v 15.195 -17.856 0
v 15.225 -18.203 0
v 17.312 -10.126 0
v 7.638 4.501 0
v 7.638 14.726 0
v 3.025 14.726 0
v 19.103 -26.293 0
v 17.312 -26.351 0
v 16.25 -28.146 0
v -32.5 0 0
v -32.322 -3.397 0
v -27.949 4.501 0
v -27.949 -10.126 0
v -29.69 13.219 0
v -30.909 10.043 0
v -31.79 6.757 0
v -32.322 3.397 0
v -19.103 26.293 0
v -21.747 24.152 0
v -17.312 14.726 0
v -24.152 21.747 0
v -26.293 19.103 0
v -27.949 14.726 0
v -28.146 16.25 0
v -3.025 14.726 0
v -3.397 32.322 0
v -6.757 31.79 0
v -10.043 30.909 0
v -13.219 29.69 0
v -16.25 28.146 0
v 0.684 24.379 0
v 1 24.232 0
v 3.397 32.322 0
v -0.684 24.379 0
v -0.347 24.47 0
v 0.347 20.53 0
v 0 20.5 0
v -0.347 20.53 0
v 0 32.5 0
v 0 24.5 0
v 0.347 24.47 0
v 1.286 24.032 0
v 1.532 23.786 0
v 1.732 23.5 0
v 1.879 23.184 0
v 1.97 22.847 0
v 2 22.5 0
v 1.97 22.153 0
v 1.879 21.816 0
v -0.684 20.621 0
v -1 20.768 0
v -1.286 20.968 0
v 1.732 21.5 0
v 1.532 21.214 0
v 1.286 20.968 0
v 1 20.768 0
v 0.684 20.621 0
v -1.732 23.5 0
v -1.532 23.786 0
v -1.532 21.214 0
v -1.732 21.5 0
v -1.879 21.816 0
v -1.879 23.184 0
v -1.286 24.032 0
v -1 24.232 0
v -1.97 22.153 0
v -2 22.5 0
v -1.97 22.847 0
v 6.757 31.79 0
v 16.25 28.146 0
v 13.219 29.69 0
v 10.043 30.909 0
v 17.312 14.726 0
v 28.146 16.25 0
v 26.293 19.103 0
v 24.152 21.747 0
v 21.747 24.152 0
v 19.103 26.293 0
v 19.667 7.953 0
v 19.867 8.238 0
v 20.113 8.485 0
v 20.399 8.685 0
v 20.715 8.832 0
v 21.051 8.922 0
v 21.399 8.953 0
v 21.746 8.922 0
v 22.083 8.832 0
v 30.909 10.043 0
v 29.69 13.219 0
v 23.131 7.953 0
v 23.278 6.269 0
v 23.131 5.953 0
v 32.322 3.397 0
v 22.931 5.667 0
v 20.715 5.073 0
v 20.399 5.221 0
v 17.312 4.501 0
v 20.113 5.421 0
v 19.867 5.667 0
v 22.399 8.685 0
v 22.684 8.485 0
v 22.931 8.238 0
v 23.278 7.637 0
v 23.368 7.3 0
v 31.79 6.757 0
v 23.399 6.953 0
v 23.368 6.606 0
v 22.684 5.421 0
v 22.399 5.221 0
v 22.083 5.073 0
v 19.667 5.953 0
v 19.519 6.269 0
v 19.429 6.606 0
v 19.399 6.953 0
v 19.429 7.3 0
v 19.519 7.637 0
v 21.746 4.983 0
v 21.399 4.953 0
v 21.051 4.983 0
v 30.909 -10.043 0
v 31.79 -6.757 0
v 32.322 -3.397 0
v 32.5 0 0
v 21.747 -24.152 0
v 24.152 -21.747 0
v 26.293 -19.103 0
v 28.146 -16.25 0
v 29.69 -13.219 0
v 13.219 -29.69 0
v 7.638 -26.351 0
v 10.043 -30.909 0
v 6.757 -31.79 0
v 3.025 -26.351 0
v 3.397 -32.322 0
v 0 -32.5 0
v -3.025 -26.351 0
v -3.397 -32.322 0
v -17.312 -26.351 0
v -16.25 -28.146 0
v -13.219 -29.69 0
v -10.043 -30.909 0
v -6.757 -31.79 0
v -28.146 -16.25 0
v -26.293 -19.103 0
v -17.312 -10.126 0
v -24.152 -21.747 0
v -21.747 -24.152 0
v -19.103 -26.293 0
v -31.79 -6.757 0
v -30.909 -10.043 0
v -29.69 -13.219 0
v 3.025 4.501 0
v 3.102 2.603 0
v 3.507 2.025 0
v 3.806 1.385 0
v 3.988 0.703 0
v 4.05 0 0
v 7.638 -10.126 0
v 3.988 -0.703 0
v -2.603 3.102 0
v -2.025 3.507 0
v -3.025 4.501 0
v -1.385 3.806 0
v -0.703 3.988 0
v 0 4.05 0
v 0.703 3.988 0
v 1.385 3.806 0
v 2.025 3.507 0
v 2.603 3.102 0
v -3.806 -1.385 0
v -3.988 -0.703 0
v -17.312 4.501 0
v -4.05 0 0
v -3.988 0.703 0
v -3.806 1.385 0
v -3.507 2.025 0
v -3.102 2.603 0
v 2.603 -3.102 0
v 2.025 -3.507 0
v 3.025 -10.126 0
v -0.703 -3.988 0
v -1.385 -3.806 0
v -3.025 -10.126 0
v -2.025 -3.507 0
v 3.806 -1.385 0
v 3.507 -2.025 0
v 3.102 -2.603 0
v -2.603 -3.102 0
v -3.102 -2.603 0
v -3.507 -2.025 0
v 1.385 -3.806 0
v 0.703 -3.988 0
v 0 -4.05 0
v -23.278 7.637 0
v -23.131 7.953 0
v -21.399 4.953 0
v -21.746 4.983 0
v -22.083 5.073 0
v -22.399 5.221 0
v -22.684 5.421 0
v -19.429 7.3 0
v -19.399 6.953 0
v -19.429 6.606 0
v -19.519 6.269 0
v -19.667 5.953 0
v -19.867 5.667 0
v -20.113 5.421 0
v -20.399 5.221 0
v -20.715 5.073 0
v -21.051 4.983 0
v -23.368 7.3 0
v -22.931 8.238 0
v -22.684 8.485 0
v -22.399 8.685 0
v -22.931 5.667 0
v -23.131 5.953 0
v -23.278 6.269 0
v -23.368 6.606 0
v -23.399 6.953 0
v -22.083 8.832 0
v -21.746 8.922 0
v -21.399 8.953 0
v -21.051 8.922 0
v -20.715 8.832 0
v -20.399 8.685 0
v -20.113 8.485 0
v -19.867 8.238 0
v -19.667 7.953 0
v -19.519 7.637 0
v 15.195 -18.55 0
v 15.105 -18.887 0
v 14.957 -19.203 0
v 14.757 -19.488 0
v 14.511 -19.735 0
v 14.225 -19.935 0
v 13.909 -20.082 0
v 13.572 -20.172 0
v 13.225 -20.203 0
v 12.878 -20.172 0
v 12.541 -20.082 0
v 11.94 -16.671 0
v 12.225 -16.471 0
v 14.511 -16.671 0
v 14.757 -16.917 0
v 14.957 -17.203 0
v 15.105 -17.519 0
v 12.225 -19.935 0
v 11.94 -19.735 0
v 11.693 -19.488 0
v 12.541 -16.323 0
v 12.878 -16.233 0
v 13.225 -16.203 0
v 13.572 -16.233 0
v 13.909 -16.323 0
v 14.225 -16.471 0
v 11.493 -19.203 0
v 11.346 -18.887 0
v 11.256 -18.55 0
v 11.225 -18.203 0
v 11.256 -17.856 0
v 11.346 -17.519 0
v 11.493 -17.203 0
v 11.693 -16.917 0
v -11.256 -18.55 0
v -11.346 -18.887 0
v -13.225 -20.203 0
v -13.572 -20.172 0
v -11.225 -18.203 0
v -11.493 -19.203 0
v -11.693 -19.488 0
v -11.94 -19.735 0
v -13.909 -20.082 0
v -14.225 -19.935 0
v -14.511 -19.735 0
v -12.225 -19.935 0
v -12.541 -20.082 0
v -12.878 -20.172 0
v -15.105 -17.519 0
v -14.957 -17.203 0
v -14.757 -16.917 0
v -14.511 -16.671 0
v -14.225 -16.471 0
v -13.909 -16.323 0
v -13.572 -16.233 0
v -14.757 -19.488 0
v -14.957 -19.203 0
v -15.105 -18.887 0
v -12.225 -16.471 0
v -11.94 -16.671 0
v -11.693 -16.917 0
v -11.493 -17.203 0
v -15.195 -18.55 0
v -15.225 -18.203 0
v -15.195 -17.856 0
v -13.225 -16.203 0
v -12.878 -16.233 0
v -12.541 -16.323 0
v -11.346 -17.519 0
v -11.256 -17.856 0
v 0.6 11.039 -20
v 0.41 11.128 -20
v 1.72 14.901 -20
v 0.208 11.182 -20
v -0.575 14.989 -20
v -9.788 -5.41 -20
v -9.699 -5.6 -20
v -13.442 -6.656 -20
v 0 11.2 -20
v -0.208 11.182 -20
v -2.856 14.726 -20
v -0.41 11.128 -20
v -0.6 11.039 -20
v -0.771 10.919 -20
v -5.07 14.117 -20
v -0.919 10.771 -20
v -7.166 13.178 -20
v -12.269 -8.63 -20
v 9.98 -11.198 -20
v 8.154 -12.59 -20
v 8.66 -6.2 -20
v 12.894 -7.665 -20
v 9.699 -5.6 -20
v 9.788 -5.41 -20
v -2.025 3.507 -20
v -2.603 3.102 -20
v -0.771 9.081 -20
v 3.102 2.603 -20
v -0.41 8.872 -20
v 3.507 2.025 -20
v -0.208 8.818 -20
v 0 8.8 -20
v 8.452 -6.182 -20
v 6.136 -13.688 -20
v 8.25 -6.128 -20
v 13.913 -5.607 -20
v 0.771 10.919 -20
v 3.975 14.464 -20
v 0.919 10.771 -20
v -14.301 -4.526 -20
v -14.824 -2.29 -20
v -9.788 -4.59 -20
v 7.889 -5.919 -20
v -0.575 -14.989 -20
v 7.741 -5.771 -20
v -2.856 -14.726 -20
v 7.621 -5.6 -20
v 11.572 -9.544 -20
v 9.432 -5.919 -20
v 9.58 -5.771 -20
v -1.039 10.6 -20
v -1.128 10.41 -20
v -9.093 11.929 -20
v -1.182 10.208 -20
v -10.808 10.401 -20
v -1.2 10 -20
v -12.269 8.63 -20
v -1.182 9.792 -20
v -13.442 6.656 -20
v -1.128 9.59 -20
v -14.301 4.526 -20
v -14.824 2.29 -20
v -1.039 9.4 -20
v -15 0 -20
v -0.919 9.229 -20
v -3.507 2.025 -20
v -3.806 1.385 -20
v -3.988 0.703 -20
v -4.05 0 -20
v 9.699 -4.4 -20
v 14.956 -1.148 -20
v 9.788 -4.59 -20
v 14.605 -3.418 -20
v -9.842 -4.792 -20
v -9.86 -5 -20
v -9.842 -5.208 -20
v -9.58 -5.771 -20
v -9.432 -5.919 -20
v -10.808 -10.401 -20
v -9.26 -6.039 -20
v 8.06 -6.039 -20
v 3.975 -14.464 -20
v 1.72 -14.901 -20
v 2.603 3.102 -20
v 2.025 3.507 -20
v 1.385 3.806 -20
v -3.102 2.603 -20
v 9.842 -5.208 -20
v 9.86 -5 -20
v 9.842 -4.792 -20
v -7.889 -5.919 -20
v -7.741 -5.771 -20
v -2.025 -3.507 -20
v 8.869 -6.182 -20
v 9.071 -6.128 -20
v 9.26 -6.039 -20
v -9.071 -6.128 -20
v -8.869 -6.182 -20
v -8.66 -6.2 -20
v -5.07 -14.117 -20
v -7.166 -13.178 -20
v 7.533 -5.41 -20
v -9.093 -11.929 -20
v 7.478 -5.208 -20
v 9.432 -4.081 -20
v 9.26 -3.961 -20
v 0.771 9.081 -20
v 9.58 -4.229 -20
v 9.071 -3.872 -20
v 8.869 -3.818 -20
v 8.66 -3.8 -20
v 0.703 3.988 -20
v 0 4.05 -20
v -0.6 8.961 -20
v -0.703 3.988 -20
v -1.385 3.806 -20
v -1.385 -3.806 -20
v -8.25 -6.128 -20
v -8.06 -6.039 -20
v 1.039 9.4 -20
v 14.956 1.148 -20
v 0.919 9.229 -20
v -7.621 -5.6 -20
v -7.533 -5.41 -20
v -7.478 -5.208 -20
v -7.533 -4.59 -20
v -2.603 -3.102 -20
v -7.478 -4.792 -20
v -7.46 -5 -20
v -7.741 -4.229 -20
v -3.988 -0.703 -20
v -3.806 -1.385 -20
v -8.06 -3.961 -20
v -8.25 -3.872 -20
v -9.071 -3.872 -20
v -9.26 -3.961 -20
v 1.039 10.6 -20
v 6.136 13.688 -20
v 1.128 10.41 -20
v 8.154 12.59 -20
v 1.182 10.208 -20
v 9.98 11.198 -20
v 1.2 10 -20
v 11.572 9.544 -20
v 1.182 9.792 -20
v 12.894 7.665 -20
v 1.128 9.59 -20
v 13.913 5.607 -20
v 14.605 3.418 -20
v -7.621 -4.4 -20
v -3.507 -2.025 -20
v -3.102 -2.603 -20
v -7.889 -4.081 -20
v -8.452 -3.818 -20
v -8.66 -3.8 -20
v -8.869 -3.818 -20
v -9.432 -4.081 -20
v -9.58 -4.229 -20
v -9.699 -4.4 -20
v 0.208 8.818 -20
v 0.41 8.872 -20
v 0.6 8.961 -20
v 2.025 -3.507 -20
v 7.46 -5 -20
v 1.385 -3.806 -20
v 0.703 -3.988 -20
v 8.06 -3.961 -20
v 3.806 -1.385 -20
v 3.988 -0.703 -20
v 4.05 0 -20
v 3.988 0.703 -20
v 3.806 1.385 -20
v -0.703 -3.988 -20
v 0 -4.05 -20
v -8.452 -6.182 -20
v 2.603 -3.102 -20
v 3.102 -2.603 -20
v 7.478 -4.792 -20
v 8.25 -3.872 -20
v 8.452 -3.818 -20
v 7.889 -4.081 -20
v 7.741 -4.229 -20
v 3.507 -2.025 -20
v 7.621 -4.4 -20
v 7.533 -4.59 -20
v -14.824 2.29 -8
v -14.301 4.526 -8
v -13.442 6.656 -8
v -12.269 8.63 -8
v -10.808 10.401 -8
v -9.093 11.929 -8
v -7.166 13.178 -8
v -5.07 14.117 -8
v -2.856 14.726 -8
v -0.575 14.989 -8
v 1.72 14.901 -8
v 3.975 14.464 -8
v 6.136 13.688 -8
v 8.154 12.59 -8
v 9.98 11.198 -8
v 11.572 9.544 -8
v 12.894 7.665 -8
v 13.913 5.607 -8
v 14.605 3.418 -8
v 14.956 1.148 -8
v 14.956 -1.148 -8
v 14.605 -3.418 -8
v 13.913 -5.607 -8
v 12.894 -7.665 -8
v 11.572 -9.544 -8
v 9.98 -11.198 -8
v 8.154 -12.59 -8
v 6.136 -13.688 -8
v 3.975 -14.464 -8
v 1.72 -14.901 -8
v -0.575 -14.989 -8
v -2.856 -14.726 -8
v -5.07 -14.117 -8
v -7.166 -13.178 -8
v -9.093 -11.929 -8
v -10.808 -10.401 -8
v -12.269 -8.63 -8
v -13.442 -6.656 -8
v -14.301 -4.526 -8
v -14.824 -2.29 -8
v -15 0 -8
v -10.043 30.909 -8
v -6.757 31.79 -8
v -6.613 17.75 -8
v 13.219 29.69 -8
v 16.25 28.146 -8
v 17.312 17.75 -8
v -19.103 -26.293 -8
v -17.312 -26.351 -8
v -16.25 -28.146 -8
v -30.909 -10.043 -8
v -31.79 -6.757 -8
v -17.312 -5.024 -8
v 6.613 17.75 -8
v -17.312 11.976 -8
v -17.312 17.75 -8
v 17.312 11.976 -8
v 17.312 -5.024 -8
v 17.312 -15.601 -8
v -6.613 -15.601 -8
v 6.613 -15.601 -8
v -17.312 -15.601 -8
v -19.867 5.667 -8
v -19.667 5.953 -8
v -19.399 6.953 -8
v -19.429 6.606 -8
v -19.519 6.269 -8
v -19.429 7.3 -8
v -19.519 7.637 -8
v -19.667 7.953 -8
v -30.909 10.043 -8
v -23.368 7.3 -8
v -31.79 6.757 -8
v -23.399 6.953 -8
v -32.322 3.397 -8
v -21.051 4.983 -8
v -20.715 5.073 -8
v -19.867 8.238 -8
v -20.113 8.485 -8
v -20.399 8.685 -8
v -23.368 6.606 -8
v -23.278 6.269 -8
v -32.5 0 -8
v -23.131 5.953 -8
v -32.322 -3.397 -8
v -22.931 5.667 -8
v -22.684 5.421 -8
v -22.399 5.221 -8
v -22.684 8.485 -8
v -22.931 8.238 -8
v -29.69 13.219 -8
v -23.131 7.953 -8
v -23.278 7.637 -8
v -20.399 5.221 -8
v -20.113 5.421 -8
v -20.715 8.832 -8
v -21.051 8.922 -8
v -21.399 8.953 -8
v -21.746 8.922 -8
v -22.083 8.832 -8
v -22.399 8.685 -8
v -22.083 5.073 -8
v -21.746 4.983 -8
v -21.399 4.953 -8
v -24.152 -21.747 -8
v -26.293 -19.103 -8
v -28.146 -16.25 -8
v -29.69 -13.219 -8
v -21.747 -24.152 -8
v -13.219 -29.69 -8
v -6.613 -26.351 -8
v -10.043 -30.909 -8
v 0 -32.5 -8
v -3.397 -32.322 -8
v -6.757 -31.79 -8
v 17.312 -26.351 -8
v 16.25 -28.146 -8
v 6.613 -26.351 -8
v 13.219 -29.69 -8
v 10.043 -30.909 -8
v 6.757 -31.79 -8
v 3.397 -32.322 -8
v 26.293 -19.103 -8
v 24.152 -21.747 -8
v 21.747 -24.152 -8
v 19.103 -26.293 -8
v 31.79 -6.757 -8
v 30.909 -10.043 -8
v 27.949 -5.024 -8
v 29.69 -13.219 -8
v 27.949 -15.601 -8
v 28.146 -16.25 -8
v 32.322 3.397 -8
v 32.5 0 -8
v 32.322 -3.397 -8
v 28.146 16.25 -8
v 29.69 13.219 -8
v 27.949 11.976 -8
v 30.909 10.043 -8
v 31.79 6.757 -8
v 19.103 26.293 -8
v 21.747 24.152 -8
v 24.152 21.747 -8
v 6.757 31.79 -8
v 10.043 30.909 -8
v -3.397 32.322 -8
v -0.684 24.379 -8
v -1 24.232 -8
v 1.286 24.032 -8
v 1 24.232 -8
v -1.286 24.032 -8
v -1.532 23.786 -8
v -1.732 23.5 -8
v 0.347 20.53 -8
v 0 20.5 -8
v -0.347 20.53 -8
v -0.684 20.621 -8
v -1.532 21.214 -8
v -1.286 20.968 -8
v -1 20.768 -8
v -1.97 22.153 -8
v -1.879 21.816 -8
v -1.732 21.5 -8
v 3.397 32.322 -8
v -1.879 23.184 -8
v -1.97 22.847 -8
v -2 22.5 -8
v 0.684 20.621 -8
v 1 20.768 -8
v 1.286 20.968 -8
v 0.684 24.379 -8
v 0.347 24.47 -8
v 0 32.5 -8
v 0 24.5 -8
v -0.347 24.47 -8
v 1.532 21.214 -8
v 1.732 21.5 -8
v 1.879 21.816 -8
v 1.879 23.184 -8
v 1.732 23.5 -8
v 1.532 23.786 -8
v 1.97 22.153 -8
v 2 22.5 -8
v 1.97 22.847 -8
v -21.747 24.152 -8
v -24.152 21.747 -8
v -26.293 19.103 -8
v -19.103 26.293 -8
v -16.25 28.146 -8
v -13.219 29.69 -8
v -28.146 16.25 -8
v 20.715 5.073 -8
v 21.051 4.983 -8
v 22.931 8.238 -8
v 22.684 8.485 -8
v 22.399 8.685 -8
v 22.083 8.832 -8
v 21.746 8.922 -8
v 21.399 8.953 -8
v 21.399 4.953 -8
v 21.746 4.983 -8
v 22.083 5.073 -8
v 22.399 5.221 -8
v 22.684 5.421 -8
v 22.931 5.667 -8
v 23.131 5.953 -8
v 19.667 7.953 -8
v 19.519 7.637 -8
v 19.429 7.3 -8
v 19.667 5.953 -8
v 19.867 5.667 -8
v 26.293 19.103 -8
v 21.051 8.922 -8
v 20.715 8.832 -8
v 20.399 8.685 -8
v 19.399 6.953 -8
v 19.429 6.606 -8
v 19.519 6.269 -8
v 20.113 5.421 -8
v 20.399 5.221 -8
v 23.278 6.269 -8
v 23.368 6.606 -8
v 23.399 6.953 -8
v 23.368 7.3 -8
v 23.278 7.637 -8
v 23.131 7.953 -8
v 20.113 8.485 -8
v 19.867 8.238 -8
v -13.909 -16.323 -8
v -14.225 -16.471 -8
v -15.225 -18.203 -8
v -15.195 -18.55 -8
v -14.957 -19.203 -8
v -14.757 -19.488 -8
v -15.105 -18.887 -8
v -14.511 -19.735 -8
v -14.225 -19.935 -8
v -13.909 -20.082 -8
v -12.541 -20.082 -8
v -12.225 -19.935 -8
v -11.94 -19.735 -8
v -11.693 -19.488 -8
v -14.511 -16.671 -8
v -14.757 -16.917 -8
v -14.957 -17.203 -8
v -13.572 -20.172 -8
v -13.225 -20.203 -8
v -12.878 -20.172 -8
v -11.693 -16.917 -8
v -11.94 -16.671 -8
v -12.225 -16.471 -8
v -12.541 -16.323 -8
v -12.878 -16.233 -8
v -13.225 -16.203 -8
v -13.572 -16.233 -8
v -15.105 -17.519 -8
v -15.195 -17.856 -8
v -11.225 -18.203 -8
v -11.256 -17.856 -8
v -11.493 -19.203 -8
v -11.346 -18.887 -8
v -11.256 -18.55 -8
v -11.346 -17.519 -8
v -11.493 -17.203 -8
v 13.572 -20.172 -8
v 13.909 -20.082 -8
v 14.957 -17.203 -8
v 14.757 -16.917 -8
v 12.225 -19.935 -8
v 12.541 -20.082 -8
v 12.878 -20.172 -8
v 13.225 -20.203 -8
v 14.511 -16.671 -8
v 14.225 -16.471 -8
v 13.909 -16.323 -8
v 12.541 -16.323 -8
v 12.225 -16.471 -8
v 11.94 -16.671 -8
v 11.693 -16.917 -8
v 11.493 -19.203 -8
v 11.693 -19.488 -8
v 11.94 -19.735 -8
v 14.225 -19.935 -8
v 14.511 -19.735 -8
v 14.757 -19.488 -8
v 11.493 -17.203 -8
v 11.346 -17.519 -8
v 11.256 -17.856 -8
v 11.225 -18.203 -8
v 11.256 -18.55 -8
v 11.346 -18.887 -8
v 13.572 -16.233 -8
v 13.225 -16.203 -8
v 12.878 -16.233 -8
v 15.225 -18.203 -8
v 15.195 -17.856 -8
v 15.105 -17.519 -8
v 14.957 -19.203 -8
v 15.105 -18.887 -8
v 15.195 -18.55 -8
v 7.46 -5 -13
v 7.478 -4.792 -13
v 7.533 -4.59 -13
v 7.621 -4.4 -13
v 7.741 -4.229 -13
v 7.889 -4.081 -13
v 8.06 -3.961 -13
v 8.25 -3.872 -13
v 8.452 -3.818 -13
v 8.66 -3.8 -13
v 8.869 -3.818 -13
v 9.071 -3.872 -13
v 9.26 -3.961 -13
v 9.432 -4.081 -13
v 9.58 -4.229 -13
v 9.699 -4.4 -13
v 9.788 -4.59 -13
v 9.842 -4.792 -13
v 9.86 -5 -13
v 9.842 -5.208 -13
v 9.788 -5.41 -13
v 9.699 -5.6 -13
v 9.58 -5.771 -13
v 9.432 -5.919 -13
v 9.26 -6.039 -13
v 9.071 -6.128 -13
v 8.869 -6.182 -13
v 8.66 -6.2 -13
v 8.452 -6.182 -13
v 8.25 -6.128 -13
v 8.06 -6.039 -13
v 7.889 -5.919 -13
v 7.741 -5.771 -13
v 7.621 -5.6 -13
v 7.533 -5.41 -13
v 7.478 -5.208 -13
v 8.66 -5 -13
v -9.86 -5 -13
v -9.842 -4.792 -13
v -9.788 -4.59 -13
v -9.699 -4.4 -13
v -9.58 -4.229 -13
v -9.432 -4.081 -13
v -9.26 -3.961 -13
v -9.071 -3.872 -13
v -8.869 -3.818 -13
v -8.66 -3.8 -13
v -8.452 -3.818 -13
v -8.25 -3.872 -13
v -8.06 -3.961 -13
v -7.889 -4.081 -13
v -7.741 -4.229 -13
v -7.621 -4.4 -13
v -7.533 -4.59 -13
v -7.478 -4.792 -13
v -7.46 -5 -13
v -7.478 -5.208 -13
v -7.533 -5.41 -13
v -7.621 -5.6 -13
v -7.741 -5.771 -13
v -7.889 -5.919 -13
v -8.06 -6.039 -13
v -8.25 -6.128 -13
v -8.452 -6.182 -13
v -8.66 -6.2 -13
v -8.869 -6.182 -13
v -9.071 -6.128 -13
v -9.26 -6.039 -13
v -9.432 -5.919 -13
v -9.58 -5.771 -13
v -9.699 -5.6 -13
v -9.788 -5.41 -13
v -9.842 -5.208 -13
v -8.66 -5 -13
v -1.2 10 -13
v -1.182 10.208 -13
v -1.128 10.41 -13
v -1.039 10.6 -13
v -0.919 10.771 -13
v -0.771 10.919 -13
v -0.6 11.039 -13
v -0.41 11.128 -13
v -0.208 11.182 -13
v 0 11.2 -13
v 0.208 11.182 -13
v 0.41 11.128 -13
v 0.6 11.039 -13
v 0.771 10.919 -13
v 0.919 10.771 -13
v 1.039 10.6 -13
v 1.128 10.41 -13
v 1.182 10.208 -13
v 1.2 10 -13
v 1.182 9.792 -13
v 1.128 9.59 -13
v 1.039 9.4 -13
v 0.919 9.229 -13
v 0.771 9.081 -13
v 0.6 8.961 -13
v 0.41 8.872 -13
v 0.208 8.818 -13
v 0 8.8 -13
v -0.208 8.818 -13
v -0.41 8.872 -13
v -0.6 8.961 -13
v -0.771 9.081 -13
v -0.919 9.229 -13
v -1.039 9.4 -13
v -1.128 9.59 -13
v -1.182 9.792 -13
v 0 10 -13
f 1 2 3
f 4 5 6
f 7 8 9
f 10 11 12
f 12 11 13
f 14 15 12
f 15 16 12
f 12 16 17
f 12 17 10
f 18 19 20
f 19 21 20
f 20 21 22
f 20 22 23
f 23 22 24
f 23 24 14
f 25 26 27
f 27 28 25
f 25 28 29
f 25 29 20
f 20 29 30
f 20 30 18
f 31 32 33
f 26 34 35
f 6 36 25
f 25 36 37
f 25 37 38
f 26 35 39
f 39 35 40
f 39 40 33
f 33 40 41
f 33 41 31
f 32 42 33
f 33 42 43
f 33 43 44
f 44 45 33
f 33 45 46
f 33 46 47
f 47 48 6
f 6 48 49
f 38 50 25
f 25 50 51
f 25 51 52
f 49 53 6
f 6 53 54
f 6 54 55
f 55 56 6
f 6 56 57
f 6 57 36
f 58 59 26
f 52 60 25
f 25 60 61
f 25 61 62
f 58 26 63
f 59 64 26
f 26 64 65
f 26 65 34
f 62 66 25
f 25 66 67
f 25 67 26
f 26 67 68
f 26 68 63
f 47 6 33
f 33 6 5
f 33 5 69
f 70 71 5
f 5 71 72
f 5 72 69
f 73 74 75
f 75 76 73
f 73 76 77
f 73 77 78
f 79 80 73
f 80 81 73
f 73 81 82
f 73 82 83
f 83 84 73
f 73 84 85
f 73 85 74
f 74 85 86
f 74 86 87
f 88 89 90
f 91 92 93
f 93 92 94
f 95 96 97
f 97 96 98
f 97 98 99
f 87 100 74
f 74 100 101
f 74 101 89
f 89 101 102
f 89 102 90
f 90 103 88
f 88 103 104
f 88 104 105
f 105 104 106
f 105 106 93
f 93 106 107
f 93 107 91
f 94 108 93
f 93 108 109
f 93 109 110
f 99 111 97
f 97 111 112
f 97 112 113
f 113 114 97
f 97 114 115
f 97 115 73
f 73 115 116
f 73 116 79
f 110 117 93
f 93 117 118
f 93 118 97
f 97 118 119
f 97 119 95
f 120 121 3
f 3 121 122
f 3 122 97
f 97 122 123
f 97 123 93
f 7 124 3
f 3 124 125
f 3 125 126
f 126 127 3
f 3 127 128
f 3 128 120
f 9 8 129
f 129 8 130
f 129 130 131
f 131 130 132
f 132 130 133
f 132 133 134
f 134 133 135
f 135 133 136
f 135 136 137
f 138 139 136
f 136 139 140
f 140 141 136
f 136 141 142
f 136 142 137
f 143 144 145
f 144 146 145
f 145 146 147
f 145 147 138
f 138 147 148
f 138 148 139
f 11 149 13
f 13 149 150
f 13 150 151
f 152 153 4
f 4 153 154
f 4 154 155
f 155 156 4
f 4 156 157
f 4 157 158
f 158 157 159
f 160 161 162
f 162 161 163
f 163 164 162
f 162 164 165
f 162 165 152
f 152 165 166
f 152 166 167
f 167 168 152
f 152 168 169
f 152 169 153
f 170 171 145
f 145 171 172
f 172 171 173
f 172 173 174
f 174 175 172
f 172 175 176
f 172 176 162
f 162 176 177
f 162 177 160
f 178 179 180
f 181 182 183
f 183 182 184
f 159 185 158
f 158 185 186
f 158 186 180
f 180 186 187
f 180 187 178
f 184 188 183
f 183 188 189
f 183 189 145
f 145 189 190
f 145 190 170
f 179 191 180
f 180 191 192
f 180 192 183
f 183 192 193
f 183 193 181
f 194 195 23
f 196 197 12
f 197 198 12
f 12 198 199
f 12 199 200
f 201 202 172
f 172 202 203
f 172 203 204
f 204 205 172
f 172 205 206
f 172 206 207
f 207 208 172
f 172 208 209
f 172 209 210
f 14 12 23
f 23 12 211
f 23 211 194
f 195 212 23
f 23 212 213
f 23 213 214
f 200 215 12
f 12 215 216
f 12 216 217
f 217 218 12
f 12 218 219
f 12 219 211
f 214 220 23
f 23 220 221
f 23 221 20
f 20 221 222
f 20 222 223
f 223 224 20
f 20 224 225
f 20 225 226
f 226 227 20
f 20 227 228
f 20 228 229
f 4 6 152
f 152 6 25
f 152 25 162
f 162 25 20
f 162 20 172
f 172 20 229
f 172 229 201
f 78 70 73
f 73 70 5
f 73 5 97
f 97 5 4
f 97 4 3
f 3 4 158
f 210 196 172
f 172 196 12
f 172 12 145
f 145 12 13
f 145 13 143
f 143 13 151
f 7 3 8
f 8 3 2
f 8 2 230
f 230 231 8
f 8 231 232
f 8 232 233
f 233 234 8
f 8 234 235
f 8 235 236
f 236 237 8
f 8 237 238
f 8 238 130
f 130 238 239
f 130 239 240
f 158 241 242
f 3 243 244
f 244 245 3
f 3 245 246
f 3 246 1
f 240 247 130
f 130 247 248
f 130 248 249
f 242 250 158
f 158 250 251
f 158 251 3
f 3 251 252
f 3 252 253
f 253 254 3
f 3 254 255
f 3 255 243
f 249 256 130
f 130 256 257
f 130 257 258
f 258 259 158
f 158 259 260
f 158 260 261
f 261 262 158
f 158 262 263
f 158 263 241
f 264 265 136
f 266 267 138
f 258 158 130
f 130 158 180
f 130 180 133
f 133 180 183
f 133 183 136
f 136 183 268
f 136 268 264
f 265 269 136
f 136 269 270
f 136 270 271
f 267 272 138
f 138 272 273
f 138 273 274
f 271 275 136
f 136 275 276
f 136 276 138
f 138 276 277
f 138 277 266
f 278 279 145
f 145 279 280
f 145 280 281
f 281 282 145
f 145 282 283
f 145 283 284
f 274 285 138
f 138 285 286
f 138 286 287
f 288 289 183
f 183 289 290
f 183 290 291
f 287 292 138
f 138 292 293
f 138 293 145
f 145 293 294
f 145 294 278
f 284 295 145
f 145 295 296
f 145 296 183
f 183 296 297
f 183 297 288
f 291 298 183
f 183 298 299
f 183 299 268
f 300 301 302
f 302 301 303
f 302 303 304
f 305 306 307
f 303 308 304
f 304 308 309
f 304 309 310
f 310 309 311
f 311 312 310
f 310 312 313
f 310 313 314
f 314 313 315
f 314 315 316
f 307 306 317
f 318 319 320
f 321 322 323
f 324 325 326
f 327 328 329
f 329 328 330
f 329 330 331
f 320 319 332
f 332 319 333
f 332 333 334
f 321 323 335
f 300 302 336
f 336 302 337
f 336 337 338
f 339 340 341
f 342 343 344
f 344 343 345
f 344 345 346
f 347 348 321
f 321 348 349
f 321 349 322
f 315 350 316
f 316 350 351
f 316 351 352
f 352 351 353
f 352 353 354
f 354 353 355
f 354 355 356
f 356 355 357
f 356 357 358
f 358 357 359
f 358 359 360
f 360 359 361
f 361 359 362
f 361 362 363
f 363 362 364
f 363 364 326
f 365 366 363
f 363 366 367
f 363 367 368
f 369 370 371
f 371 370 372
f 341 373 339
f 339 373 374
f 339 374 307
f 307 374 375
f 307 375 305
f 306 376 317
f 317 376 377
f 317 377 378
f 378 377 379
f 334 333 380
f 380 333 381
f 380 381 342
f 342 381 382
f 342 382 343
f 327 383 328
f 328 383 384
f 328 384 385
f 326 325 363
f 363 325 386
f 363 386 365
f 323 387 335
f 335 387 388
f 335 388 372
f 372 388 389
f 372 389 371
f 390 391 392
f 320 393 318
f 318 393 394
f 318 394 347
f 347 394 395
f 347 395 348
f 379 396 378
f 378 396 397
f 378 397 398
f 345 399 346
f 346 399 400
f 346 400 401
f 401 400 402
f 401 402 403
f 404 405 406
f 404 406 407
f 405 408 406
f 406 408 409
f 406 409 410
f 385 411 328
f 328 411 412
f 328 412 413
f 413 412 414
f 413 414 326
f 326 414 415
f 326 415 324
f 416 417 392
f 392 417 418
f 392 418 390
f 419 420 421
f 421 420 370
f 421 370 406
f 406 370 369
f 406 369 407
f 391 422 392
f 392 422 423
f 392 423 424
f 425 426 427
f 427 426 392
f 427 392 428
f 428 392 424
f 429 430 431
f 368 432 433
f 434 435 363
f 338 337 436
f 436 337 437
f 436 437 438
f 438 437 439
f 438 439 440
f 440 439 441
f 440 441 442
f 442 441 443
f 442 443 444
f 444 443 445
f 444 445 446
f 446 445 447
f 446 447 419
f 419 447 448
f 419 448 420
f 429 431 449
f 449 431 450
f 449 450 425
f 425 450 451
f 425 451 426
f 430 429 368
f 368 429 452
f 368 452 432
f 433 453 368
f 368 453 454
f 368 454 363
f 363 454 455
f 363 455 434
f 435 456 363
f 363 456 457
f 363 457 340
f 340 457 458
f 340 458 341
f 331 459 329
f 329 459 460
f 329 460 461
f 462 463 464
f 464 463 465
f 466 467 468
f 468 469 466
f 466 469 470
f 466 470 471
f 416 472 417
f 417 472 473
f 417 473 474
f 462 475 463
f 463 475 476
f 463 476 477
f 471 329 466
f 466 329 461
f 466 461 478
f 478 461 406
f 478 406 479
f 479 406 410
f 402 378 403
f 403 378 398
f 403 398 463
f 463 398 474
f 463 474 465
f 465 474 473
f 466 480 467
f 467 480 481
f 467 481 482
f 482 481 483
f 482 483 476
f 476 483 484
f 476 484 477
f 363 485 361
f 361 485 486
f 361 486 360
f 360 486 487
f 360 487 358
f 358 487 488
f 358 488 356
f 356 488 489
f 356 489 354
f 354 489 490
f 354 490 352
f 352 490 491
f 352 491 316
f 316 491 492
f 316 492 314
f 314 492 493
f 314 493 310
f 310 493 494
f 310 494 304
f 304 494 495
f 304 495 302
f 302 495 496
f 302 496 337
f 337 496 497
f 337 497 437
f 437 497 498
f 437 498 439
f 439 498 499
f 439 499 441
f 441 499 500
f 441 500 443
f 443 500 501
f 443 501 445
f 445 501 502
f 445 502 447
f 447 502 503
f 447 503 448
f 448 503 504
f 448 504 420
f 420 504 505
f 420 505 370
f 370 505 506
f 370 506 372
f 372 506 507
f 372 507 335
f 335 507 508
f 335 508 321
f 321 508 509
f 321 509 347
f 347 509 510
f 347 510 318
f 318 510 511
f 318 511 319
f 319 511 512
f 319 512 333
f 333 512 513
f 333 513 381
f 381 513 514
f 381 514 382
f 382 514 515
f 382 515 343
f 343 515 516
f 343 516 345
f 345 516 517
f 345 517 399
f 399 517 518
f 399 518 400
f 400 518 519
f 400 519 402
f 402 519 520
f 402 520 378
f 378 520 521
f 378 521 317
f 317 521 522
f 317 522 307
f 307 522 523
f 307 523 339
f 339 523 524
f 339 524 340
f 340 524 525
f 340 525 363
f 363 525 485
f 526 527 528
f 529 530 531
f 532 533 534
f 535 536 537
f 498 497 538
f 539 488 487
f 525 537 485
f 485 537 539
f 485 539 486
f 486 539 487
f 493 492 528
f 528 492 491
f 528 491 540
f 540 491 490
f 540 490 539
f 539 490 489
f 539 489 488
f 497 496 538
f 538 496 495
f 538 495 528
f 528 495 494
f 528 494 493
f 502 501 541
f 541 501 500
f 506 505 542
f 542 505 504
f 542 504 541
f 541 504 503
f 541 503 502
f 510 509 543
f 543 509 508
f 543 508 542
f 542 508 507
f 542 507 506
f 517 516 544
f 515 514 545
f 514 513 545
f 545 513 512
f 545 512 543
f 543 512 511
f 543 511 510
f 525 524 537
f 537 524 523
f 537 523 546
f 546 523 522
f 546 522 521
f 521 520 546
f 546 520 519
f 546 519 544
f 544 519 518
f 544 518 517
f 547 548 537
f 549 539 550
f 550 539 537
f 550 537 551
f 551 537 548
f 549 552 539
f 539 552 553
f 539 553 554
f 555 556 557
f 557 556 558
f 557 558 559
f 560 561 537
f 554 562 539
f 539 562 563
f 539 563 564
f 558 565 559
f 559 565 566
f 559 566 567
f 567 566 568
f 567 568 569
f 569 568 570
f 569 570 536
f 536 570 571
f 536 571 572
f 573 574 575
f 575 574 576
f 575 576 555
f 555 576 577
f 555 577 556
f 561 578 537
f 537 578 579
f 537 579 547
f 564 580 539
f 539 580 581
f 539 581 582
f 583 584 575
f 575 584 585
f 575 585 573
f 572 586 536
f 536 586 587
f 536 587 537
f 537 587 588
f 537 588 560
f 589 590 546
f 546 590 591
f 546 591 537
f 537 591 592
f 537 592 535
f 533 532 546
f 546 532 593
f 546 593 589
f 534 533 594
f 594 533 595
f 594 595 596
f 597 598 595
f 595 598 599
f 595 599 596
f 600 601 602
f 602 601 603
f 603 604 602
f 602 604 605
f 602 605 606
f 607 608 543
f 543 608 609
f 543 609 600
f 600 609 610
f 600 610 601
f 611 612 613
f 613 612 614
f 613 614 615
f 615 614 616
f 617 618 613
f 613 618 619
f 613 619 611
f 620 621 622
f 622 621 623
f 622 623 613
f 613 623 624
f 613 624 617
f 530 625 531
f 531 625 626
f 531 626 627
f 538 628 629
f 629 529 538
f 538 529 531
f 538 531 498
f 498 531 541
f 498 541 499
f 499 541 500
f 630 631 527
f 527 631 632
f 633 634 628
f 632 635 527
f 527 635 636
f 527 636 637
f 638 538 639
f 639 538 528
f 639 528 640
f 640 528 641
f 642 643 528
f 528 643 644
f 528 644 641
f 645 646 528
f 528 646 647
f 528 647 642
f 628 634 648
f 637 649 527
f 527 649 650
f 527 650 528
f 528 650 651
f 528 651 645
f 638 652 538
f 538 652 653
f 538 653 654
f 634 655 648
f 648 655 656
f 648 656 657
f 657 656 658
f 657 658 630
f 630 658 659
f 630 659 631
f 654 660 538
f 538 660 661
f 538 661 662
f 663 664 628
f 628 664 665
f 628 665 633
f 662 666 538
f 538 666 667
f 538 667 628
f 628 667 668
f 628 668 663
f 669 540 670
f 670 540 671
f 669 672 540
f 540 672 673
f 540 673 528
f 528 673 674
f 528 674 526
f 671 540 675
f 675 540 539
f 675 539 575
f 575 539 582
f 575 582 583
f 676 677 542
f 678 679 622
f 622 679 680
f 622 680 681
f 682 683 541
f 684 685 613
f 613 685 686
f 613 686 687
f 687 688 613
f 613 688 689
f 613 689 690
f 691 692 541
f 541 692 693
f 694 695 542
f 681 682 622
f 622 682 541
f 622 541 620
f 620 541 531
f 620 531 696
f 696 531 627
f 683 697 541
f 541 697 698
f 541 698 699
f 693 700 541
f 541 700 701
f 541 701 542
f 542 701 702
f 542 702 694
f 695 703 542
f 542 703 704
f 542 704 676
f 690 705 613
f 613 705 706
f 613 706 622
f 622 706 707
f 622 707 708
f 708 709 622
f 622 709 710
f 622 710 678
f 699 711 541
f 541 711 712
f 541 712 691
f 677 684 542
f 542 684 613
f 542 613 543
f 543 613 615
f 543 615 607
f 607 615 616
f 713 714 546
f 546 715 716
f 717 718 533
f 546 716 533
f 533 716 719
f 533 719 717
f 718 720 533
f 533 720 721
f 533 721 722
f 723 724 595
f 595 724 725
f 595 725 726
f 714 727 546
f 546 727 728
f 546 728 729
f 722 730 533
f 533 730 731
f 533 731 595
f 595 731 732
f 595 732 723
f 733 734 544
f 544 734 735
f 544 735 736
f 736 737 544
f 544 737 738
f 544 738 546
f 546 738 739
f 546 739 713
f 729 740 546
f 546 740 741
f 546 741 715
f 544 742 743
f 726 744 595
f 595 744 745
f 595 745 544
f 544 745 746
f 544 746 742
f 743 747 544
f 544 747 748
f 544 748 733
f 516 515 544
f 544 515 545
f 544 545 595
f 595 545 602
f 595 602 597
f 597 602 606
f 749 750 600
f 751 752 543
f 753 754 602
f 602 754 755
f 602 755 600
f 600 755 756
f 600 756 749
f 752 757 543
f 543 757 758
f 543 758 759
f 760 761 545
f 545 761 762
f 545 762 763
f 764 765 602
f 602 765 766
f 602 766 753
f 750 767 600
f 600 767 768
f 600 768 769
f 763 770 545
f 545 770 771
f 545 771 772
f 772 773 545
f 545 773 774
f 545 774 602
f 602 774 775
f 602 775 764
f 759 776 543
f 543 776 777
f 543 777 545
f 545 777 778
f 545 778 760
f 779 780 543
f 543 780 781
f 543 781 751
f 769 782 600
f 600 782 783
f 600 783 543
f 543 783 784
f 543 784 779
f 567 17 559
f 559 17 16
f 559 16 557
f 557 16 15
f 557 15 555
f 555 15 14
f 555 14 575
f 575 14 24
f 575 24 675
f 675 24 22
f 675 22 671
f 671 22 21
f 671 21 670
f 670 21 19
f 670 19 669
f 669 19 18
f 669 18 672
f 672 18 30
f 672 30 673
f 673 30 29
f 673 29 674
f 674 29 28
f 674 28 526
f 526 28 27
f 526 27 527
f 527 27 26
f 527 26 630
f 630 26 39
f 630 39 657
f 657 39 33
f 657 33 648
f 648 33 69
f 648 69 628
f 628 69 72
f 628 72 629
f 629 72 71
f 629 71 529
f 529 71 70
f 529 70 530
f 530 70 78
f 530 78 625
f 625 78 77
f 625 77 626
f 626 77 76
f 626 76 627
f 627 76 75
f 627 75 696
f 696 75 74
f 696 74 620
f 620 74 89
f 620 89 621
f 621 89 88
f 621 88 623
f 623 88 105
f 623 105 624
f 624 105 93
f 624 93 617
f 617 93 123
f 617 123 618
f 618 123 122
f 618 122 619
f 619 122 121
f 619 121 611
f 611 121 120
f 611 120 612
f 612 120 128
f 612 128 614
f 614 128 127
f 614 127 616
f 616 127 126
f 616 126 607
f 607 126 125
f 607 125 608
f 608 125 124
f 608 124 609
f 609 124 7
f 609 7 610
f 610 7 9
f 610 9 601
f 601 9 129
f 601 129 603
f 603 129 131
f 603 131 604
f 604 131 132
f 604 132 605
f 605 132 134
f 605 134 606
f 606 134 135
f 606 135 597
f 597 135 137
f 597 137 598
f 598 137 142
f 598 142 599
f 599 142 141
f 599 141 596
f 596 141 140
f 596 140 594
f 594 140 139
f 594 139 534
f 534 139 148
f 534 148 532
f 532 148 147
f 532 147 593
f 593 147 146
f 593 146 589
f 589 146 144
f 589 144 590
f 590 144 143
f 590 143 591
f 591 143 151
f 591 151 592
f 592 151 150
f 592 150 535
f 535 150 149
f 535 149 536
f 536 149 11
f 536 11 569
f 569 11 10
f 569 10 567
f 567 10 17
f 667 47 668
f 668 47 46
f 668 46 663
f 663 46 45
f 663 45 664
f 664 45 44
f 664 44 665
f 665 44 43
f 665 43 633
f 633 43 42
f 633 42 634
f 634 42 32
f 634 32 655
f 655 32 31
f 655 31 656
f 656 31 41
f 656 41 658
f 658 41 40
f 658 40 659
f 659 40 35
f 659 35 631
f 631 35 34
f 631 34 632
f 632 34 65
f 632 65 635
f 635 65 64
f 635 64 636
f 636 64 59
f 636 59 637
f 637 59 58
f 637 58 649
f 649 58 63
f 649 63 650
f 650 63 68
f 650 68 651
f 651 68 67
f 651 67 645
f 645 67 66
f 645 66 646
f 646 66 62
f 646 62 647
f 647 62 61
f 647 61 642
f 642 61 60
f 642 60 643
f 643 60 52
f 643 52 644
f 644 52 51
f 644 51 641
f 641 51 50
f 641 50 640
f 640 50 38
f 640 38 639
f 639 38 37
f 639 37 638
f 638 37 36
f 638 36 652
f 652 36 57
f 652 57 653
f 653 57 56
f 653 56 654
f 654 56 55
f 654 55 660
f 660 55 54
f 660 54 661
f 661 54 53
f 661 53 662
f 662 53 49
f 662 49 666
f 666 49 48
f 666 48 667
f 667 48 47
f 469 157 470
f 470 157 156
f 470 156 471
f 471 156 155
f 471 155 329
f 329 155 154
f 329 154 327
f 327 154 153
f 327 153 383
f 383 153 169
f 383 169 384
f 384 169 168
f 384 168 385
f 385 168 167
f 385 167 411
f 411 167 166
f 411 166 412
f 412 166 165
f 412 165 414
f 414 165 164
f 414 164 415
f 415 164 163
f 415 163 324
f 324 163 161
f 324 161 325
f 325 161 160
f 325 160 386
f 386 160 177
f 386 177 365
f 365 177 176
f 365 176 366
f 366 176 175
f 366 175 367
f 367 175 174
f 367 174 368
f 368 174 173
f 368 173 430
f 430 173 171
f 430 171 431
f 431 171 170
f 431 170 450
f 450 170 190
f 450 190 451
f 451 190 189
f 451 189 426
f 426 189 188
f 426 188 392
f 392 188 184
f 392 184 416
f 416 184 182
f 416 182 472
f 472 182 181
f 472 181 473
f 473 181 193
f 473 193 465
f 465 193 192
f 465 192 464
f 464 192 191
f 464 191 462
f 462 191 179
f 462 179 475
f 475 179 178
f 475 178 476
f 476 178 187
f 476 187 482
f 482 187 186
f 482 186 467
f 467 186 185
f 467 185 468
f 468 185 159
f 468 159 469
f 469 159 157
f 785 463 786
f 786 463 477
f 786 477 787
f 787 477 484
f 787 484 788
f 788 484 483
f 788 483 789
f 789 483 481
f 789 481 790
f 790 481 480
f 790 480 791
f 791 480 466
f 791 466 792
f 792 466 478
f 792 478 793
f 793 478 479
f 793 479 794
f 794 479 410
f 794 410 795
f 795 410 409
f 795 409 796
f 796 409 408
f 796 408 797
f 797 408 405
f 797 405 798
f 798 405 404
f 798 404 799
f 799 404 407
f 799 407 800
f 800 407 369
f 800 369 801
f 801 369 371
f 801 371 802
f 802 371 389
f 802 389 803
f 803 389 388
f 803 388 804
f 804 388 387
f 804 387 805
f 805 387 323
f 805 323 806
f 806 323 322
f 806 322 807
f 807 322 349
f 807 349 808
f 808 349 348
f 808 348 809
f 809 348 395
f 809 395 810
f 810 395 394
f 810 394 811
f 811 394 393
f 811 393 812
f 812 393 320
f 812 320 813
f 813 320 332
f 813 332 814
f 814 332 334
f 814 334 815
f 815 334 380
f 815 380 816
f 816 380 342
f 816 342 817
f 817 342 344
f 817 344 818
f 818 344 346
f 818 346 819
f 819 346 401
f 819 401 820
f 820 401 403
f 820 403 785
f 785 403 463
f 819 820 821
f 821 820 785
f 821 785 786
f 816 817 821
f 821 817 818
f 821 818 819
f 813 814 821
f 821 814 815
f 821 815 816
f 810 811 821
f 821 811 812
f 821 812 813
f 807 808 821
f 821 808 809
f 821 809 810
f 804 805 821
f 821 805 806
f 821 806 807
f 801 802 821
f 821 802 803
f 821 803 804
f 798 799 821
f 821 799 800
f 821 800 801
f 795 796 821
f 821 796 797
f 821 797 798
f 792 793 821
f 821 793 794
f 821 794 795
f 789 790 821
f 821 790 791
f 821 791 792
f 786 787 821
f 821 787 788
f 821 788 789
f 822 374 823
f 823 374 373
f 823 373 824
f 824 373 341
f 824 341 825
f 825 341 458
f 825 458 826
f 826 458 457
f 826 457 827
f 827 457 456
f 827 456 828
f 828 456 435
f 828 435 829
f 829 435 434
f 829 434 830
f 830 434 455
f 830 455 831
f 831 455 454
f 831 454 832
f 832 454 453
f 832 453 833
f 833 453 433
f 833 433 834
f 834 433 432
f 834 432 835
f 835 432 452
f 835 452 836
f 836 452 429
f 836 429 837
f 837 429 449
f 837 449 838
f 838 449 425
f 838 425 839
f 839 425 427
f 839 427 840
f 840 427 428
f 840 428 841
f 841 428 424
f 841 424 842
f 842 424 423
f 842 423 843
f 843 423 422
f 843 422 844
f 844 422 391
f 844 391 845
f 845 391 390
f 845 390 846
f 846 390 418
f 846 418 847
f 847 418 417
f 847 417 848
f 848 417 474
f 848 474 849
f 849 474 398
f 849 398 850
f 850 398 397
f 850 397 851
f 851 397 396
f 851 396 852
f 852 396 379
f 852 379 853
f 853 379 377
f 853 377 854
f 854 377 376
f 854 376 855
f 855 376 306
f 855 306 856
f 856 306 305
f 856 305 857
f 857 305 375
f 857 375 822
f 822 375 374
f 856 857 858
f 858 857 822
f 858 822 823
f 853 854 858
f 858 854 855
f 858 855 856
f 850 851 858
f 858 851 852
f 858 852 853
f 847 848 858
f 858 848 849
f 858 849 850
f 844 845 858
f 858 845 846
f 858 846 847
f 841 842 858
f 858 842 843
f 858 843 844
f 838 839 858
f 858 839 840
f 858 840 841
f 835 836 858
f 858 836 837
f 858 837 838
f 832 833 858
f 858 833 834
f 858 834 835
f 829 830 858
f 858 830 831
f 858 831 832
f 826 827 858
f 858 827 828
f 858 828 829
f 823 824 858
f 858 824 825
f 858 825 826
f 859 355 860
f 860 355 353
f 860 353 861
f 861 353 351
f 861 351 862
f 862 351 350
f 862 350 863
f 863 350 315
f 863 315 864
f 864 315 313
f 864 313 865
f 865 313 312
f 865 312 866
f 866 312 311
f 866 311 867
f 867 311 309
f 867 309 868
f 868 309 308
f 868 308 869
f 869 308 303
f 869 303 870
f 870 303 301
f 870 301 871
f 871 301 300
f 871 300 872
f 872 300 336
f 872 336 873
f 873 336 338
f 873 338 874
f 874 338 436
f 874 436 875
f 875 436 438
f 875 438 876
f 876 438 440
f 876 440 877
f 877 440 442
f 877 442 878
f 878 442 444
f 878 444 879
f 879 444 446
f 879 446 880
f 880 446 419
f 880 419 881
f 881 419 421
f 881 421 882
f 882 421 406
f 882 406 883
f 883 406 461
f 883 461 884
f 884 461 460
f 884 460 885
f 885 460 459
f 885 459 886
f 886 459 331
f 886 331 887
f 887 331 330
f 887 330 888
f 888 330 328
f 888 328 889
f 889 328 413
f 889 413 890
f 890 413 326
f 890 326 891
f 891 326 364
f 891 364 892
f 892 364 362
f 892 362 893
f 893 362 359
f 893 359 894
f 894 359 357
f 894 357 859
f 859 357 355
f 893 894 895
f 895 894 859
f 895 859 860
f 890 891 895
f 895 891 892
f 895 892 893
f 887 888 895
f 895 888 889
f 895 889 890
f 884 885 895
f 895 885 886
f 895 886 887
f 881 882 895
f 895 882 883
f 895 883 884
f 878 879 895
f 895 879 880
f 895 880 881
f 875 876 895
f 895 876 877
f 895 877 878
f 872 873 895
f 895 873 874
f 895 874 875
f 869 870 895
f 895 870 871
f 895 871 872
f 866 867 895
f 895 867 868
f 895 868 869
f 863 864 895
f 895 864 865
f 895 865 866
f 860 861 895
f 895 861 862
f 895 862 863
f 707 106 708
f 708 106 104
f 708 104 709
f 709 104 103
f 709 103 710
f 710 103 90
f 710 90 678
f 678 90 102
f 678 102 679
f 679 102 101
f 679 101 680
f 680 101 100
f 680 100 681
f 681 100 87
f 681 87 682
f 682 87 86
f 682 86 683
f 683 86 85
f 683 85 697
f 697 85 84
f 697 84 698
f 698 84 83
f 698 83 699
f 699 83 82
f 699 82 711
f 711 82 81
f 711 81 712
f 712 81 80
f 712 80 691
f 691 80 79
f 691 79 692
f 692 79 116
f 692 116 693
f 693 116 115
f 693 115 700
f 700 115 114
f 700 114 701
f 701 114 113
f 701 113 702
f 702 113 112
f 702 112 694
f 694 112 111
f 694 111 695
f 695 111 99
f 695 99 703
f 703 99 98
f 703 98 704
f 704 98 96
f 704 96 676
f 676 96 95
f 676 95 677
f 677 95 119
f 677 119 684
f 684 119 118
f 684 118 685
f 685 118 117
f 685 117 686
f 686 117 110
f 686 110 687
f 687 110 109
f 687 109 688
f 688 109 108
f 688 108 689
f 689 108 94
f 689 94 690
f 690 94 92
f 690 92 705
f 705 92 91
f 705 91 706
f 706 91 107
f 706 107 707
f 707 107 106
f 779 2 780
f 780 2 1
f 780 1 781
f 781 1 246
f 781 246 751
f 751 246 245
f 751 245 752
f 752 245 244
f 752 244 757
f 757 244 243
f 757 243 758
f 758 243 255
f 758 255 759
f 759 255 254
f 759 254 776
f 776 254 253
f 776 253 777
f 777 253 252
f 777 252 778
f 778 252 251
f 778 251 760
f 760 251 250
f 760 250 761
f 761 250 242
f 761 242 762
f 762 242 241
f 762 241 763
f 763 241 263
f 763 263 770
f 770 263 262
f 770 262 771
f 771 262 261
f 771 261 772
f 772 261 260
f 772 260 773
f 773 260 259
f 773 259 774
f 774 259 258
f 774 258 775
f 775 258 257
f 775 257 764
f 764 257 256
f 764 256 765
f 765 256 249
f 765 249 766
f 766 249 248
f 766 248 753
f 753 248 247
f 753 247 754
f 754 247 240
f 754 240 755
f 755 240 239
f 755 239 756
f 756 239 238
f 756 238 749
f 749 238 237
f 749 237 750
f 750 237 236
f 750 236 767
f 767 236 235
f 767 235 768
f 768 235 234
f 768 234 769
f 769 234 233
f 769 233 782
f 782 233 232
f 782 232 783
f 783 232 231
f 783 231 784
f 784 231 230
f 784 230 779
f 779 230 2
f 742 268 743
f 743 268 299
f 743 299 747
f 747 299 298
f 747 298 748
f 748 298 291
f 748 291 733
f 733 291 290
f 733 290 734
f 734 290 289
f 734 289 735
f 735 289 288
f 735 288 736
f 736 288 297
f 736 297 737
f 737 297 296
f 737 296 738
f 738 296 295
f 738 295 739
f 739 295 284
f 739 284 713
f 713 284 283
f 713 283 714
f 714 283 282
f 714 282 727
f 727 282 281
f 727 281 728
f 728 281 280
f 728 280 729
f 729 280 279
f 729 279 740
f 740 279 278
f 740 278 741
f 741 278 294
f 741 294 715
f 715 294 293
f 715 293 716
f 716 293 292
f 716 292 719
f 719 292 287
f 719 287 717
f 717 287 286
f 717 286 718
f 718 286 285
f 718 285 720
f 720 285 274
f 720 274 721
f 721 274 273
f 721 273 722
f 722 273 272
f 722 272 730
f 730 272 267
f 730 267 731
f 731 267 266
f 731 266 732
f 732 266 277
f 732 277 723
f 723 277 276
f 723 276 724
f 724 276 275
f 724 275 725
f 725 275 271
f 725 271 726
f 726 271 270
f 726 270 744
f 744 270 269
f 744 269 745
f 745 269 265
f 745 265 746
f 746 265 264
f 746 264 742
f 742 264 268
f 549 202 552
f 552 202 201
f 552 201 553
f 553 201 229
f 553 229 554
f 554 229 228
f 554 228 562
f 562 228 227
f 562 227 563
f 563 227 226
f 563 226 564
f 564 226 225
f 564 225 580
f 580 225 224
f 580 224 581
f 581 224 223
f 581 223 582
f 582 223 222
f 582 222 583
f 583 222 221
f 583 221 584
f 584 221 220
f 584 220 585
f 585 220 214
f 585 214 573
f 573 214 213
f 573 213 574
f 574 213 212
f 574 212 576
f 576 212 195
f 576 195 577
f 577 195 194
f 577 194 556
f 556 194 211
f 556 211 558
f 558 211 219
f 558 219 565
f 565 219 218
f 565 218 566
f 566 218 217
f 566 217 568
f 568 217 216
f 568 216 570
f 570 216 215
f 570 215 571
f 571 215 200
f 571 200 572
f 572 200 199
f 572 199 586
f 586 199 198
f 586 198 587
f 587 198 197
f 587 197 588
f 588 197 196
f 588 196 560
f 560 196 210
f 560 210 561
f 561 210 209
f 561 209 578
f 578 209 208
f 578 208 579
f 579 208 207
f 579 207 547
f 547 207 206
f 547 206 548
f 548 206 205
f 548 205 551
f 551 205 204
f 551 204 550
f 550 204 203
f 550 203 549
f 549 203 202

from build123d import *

# Parameters (mm, degrees)
F_4_0_4_HEAT_INSERT_M3_D         = 4
F_8_1_8_1_DURCHMESSER_BOHRUNG1_D = 8.1
SKIZZE8_R                        = 1.2
SCHNITT_LINEAR_AUSTRAGEN1_DEPTH  = 7
KREISMUSTER1_COUNT               = 5


with BuildPart() as part:
    # Skizze1 → Rotation1 (revolve)
    with BuildSketch(Plane(origin=(0, 0, 0), x_dir=(0, 0, -1), z_dir=(1, 0, 0)), mode=Mode.PRIVATE) as rotation1_sk:
        Polygon((0, 0), (20, 0), (20, 15), (8, 15), (8, 32.5), (0, 32.5), align=None)
    revolve(rotation1_sk.sketch.rotate(Axis((0, 0, 0), (0, 0, 1)), 90), axis=Axis((0, 0, 0), (0, 0, 1)))

    # Ø4.0 (4) Heat Insert M3 (through all)
    with Locations(Plane.XY):
        with Locations((0, 22.5)):
            f_4_0_4_heat_insert_m3 = Hole(F_4_0_4_HEAT_INSERT_M3_D / 2)

    # Ø8.1 (8.1) Durchmesser Bohrung1 (through all)
    with Locations(Plane.XY):
        with Locations((0, 0)):
            Hole(F_8_1_8_1_DURCHMESSER_BOHRUNG1_D / 2)

    # Skizze8 → Schnitt-Linear austragen1 (cut)
    with BuildSketch(Plane(origin=(0, 0, -20), x_dir=(-1, 0, 0), z_dir=(0, 0, -1))):
        with Locations((0, 10)):
            Circle(SKIZZE8_R)
        with Locations((8.660254038, -5)):
            Circle(SKIZZE8_R)
        with Locations((-8.660254038, -5)):
            Circle(SKIZZE8_R)
    extrude(amount=-SCHNITT_LINEAR_AUSTRAGEN1_DEPTH, mode=Mode.SUBTRACT)

    # Kreismuster1: Ø4.0 (4) Heat Insert M3 ×5 about axis
    kreismuster1_axis = Axis((0, 0, 0), (0, 0, 1))
    for i in range(1, KREISMUSTER1_COUNT):
        add(f_4_0_4_heat_insert_m3.rotate(kreismuster1_axis, i * 360 / KREISMUSTER1_COUNT), mode=Mode.SUBTRACT)


solid = part.part
